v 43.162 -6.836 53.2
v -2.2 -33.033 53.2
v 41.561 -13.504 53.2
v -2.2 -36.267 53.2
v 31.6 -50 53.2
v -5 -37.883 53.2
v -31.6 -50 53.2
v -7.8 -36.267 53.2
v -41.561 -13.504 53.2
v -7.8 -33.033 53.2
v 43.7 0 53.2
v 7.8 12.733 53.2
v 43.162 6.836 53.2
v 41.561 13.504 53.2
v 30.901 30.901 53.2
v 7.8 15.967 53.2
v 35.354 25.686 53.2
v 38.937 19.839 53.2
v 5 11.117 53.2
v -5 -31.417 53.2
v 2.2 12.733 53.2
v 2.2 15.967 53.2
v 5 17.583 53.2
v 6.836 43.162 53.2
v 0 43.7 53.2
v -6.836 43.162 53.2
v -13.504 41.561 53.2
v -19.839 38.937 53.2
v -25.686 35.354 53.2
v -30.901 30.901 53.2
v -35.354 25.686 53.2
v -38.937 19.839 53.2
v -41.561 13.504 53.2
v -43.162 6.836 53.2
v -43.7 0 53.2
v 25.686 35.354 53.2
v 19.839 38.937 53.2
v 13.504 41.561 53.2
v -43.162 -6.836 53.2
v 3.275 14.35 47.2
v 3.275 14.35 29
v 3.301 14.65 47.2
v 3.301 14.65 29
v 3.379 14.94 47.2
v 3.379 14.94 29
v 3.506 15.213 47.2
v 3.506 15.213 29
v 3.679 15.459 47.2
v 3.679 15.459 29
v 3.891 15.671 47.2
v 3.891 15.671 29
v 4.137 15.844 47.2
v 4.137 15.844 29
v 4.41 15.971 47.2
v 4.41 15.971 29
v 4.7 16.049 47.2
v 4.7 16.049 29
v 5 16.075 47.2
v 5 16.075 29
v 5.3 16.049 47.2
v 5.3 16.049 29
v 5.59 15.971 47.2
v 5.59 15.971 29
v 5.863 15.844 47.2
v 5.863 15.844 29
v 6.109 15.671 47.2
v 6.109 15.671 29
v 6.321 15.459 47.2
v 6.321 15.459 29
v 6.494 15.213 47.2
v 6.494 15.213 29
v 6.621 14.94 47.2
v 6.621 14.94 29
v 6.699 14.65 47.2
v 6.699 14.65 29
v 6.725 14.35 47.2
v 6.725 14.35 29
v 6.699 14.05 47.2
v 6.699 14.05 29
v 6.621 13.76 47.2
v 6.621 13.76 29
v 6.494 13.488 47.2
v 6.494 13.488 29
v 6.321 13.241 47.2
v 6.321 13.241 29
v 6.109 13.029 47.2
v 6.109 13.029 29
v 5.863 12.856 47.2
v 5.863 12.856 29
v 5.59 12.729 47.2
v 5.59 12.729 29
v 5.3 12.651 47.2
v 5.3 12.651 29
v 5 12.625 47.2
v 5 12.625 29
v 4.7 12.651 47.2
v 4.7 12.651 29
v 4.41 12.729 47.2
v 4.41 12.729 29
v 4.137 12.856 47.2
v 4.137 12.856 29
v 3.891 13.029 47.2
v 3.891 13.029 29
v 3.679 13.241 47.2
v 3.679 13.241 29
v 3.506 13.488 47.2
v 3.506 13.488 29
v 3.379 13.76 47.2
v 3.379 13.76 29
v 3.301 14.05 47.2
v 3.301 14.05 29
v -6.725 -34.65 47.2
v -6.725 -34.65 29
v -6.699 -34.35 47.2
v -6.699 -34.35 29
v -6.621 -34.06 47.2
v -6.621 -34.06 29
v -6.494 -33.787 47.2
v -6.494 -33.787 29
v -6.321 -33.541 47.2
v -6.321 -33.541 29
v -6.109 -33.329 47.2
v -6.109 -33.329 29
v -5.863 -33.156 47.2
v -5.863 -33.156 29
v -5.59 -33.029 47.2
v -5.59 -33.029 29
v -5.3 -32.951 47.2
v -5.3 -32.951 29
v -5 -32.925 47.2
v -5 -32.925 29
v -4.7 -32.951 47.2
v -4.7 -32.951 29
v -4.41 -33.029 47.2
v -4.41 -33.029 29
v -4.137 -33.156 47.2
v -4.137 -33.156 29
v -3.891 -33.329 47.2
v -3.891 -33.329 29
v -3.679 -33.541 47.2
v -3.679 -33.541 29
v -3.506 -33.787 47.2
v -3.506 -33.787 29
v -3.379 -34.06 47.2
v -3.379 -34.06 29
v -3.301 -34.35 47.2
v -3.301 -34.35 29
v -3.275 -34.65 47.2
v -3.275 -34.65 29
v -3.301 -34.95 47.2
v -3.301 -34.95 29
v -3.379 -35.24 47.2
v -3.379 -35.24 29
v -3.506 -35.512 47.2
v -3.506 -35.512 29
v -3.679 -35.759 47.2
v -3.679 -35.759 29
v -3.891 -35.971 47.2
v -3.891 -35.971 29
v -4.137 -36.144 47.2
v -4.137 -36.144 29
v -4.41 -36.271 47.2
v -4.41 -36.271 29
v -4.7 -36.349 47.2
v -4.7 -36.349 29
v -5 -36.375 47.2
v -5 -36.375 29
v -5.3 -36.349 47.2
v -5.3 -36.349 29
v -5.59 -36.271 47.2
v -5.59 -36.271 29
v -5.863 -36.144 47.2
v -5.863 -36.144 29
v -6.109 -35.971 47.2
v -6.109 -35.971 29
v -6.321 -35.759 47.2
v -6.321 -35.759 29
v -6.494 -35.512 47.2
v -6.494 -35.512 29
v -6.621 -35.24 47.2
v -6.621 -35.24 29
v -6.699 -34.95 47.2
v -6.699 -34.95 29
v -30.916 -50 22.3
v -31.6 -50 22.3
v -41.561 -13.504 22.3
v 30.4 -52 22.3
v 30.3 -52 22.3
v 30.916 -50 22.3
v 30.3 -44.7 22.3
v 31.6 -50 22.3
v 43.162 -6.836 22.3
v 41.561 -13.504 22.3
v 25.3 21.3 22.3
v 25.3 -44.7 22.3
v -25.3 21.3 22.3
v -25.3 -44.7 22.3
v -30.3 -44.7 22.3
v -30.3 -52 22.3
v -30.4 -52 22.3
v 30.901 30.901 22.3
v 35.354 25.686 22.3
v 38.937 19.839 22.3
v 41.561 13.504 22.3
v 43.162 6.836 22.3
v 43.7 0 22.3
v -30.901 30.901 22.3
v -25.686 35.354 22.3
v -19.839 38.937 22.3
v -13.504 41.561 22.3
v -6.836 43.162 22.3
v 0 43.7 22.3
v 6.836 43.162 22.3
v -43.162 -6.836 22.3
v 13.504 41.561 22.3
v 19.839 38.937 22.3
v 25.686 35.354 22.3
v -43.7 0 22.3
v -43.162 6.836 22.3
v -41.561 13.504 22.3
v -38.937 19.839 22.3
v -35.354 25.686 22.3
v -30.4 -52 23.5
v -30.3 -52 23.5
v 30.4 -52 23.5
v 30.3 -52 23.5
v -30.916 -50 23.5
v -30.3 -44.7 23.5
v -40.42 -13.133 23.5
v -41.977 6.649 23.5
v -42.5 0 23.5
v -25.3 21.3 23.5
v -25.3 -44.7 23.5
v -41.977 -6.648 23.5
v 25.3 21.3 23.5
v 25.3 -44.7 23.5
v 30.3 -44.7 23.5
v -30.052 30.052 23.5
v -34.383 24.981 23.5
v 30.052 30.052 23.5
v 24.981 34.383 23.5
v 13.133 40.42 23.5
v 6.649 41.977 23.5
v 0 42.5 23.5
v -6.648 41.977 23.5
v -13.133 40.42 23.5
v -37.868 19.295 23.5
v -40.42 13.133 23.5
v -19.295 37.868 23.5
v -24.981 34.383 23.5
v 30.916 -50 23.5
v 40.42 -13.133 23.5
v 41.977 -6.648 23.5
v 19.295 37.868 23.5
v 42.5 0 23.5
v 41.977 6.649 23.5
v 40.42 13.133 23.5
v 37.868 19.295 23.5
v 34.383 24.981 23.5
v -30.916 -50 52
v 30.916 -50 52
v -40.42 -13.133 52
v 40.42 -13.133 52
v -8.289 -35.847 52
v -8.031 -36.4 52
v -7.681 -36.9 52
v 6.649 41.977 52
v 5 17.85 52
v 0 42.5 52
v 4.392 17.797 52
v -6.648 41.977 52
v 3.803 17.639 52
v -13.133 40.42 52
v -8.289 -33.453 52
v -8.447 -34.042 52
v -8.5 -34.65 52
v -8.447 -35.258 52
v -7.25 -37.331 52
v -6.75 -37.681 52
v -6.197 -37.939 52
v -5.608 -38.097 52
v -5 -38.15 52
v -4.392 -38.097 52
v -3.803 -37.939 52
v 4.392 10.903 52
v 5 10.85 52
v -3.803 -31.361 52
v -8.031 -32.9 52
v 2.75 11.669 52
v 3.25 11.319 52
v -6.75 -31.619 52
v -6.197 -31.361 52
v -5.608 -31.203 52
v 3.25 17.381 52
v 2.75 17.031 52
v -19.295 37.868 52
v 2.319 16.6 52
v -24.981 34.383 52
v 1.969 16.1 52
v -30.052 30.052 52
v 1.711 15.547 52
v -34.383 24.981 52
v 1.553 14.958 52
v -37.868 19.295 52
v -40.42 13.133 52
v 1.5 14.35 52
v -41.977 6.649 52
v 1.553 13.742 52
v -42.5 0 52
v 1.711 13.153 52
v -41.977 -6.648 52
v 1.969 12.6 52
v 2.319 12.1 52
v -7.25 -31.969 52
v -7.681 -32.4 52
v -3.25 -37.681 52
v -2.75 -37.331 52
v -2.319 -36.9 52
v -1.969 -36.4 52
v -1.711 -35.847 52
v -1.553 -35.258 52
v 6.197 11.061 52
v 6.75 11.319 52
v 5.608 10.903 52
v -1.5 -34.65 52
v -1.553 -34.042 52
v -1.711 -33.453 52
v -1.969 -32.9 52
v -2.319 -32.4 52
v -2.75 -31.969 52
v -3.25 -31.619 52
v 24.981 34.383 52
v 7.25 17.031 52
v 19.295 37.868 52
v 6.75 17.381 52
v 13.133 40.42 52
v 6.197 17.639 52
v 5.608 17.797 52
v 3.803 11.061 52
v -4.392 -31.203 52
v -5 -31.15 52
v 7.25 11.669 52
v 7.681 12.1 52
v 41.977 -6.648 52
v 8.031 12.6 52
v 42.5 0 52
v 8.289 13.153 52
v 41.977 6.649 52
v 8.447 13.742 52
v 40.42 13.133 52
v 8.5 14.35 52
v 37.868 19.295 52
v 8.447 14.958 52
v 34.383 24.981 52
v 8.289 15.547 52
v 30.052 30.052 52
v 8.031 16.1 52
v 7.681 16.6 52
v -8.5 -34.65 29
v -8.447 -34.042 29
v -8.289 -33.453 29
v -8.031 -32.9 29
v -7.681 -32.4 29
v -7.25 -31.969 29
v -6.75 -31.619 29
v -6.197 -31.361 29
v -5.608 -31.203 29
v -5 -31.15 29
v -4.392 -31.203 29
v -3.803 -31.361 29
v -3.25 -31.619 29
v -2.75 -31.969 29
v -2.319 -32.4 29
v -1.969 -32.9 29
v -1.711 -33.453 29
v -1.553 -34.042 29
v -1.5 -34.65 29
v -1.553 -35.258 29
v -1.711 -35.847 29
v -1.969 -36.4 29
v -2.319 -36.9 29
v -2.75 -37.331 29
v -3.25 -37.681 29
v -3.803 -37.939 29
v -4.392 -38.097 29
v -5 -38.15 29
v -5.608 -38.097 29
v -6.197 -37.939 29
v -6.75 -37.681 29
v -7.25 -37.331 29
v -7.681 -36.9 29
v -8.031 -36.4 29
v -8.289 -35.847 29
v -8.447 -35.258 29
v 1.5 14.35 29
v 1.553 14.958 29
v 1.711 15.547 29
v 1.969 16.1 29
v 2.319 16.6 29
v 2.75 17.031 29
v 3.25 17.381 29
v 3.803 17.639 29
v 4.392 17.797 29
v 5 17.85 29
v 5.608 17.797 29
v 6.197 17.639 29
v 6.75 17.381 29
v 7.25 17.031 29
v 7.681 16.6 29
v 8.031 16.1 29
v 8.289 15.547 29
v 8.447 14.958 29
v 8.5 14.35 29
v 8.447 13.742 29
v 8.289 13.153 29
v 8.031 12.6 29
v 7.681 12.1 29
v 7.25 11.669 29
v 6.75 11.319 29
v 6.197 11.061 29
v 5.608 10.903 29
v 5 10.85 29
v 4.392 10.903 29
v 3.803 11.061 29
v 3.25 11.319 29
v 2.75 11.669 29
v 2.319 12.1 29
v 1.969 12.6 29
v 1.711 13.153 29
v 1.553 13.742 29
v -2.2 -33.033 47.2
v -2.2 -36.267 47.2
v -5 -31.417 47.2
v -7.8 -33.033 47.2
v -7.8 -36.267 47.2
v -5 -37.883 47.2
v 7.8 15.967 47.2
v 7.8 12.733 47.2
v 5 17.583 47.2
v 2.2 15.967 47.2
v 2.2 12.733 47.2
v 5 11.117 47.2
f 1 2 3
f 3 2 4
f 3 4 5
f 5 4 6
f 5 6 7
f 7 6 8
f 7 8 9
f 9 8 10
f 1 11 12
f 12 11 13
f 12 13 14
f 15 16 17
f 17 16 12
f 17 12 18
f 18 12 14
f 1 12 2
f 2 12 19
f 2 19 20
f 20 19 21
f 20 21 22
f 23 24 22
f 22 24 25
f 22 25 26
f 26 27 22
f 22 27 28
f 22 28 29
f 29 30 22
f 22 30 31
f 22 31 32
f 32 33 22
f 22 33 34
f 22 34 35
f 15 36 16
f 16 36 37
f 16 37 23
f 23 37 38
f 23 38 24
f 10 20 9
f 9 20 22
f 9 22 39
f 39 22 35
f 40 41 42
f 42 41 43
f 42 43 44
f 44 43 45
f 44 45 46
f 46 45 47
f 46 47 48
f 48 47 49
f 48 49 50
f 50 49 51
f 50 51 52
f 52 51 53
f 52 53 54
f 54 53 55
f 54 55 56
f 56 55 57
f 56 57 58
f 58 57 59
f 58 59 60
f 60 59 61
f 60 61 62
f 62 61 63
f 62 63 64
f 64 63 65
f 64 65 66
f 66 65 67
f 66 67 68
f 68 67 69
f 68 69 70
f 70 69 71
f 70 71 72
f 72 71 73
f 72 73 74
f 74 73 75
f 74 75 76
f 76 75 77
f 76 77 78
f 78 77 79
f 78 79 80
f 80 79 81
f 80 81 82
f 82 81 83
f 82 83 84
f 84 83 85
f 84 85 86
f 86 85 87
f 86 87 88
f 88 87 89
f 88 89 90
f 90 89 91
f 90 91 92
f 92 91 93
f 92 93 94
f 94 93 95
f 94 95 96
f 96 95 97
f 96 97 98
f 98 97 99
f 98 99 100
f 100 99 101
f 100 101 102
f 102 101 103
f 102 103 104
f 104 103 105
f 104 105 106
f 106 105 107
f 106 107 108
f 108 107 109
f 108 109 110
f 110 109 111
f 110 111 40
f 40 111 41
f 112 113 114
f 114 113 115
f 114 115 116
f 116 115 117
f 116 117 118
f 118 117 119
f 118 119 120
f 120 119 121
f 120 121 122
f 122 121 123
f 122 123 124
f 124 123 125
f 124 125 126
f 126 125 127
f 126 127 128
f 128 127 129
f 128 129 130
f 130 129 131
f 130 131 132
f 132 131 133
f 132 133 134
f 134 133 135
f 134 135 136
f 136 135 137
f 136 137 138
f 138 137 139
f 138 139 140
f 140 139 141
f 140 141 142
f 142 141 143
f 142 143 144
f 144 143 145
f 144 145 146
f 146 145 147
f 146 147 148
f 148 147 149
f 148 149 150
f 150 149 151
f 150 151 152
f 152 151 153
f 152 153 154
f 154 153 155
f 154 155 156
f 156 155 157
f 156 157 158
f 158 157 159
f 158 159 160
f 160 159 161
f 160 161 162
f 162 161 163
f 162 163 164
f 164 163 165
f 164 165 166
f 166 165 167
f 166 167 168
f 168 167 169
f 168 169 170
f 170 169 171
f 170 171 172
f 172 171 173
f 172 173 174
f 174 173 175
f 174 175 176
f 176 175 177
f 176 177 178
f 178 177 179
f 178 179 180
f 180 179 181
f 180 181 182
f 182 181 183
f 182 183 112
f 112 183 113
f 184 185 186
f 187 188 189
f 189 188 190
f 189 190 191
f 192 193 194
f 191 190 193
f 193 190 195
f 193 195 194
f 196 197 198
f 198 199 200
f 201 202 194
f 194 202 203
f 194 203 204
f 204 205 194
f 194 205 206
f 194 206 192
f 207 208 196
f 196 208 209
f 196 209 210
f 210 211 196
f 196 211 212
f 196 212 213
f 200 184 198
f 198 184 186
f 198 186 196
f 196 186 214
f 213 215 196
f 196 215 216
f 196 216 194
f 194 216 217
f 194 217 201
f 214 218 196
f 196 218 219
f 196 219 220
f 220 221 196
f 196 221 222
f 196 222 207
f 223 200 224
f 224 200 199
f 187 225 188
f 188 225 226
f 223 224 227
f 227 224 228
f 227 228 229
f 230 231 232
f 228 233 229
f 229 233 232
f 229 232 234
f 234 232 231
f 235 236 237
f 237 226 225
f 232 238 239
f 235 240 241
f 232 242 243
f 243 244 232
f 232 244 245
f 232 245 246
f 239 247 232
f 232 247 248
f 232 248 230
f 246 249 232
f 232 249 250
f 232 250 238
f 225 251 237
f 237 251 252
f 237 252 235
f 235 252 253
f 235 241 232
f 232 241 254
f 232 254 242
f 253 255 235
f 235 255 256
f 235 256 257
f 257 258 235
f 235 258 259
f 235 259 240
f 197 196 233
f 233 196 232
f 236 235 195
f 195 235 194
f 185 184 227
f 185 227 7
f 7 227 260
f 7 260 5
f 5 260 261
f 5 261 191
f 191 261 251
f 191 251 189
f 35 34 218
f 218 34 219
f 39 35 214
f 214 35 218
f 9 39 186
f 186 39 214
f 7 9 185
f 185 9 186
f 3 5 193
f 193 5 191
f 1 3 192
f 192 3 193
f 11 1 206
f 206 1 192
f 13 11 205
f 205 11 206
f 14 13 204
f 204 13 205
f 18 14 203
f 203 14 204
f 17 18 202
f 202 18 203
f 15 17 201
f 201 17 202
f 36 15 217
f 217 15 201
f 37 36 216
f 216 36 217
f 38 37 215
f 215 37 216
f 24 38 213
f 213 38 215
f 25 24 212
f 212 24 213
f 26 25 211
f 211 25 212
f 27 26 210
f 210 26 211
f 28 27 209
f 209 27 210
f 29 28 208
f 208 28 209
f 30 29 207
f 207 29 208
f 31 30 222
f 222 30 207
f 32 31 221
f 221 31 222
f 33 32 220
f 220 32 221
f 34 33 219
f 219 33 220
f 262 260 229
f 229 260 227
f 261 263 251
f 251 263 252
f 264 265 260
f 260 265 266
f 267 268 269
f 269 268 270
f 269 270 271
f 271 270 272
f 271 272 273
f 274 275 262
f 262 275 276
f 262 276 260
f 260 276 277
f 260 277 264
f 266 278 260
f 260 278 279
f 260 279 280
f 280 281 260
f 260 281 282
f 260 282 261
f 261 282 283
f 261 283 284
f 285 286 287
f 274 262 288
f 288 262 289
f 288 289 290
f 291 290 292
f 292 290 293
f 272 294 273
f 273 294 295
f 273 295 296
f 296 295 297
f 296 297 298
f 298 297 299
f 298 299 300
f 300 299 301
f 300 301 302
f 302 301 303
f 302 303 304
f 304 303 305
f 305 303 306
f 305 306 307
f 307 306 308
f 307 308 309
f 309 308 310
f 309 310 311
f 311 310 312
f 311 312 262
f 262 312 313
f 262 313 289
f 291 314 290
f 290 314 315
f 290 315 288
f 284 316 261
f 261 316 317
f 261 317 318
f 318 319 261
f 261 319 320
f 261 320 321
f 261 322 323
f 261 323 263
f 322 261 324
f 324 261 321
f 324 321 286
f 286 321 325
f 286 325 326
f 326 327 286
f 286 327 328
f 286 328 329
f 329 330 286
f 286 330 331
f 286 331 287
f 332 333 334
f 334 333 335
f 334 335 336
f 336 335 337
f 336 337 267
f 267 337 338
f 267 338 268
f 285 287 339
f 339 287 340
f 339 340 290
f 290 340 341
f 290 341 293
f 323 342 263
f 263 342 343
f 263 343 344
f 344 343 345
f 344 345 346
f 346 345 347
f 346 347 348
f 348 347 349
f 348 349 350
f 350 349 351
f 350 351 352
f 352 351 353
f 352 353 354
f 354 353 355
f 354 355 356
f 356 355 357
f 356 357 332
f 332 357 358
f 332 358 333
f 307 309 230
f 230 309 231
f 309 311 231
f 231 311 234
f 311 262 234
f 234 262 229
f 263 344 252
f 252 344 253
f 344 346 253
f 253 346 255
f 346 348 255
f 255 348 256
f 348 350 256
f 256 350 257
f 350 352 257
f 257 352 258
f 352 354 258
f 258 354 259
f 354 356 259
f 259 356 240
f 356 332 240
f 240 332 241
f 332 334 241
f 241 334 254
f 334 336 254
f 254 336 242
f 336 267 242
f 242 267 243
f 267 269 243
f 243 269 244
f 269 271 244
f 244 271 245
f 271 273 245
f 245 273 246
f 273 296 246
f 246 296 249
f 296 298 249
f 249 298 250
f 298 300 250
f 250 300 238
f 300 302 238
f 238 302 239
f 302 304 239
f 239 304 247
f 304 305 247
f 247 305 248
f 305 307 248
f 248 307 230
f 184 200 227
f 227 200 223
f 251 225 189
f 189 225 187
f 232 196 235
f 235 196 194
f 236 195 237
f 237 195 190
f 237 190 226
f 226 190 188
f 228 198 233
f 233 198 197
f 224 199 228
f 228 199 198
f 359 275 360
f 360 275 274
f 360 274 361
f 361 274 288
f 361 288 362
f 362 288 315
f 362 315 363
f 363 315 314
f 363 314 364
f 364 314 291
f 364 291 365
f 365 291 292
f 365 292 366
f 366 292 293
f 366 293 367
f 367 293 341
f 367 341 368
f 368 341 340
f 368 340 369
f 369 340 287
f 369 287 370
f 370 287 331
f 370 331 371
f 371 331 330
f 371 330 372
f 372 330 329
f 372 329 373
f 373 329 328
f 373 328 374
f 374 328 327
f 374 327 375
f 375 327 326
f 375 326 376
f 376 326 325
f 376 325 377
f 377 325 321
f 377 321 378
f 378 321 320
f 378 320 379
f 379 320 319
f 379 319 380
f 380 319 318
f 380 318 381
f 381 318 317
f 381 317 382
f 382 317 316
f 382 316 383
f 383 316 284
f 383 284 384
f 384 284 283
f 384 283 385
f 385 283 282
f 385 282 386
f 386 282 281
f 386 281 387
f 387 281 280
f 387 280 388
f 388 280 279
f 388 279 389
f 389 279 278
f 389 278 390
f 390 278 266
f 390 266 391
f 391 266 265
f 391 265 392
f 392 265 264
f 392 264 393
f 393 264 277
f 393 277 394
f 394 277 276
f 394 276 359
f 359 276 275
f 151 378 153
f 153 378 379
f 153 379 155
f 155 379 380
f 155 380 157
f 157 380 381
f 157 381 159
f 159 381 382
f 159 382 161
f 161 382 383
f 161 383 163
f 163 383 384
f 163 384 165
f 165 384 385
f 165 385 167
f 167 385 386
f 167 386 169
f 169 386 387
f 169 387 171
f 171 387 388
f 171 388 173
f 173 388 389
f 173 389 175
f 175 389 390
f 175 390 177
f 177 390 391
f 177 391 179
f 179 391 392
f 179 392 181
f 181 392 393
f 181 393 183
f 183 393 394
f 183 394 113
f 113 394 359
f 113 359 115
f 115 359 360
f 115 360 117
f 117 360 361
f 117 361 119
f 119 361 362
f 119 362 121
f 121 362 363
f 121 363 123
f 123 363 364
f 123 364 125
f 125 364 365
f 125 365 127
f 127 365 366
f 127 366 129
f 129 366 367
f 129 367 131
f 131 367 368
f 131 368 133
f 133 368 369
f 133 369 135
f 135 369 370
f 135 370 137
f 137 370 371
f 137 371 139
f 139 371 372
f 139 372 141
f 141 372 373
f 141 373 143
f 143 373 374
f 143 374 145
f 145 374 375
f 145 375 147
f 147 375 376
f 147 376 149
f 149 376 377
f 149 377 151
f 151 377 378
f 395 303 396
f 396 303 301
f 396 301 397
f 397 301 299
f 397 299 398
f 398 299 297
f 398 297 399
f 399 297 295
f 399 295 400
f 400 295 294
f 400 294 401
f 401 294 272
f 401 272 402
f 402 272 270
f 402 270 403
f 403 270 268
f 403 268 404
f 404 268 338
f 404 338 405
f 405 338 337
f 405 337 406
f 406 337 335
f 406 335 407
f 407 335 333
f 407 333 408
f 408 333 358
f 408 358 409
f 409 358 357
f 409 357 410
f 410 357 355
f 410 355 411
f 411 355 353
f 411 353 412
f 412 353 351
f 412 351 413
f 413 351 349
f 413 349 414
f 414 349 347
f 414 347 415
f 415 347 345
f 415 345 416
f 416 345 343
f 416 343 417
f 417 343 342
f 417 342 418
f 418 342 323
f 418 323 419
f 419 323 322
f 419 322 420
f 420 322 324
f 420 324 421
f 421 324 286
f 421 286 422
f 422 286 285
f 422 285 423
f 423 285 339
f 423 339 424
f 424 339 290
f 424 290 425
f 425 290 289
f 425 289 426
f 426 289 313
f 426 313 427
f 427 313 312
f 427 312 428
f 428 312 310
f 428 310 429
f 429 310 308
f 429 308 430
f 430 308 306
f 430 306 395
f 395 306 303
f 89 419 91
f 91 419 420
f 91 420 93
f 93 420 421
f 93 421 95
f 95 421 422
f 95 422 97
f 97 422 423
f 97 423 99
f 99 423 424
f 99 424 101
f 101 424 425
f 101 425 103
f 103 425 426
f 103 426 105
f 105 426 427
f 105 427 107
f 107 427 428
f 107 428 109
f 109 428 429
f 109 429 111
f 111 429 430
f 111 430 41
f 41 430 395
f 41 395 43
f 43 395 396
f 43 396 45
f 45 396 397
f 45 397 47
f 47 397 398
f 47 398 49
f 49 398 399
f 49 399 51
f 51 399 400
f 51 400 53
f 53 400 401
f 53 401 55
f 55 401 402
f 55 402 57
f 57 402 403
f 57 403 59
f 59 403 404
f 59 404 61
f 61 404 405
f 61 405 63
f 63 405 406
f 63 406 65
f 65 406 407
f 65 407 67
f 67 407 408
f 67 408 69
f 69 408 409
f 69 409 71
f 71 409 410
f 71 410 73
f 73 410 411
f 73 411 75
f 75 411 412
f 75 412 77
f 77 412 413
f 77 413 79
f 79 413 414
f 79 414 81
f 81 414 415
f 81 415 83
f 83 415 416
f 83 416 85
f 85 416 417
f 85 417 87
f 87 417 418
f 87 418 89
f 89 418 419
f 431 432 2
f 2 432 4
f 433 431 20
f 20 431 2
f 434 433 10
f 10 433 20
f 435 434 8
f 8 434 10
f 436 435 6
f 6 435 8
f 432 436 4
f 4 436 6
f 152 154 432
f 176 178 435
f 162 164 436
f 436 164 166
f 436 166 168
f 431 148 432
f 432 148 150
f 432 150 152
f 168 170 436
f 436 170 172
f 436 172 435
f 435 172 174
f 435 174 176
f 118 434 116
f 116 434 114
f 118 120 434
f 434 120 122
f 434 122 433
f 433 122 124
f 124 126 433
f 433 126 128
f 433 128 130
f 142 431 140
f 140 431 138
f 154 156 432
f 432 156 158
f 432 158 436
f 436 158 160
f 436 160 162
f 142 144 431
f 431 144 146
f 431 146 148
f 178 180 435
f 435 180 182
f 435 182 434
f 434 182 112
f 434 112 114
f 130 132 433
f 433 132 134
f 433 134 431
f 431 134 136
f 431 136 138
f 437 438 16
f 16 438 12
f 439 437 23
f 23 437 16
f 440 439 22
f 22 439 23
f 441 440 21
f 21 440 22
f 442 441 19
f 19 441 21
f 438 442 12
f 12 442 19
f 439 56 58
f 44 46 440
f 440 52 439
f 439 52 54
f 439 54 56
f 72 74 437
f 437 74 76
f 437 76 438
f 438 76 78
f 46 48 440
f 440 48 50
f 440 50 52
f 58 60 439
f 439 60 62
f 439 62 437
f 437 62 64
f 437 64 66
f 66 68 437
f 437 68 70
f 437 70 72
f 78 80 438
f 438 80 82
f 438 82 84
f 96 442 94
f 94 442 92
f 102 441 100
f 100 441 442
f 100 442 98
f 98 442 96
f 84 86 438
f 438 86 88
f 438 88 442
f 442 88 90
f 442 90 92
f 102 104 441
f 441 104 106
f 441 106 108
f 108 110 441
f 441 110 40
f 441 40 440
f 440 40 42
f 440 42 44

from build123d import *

# Parameters (mm, degrees)
BOSS_EXTRUDE1_START     = 22.3
BOSS_EXTRUDE1_DEPTH     = 30.9
CUT_EXTRUDE1_START      = 22.3
CUT_EXTRUDE1_DEPTH      = 29.7
BOSS_EXTRUDE2_START     = 22.3
BOSS_EXTRUDE2_DEPTH     = 1.2
CUT_EXTRUDE2_START      = 22.2
SKETCH4_W               = 50.6
SKETCH4_H               = 74.3
CUT_EXTRUDE2_DEPTH      = 1.4
CUT_EXTRUDE3_START      = 22.2
SKETCH5_W               = 60.6
SKETCH5_H               = 8.3
CUT_EXTRUDE3_DEPTH      = 1.4
BOSS_EXTRUDE3_START     = 29
SKETCH6_R               = 3.5
BOSS_EXTRUDE3_DEPTH     = 23
CUT_EXTRUDE4_DEPTH      = 87.278212777
CUT_EXTRUDE4_DEPTH_BACK = 87.278212777
SKETCH7_R               = 1.725
CUT_EXTRUDE5_START      = 47.2
CUT_EXTRUDE5_DEPTH      = 6.1


with BuildPart() as part:
    # Sketch1 → Boss-Extrude1 (new body)
    with BuildSketch(Plane.XY.offset(BOSS_EXTRUDE1_START)):
        Polygon((-43.7, 0), (-43.162, -6.8362), (-41.5612, -13.504), (-31.6, -50), (31.6, -50), (41.5612, -13.504), (43.162, -6.8362), (43.7, 0), (43.162, 6.8362), (41.5612, 13.504), (38.937, 19.8394), (35.354, 25.6862), (30.9006, 30.9006), (25.6862, 35.354), (19.8394, 38.937), (13.504, 41.5612), (6.8362, 43.162), (0, 43.7), (-6.8362, 43.162), (-13.504, 41.5612), (-19.8394, 38.937), (-25.6862, 35.354), (-30.9006, 30.9006), (-35.354, 25.6862), (-38.937, 19.8394), (-41.5612, 13.504), (-43.162, 6.8362), align=None)
    extrude(amount=BOSS_EXTRUDE1_DEPTH)

    # Sketch2 → Cut-Extrude1 (cut)
    with BuildSketch(Plane.XY.offset(CUT_EXTRUDE1_START)):
        Polygon((-42.5, 0), (-41.9768, -6.6485), (-40.4199, -13.1332), (-30.4, -52), (30.4, -52), (40.4199, -13.1332), (41.9768, -6.6485), (42.5, 0), (41.9768, 6.6485), (40.4199, 13.1332), (37.8678, 19.2946), (34.3832, 24.9809), (30.052, 30.052), (24.9809, 34.3832), (19.2946, 37.8678), (13.1332, 40.4199), (6.6485, 41.9768), (0, 42.5), (-6.6485, 41.9768), (-13.1332, 40.4199), (-19.2946, 37.8678), (-24.9809, 34.3832), (-30.052, 30.052), (-34.3832, 24.9809), (-37.8678, 19.2946), (-40.4199, 13.1332), (-41.9768, 6.6485), align=None)
    extrude(amount=CUT_EXTRUDE1_DEPTH, mode=Mode.SUBTRACT)

    # Sketch3 → Boss-Extrude2 (add)
    with BuildSketch(Plane.XY.offset(BOSS_EXTRUDE2_START)):
        Polygon((-42.5, 0), (-41.9768, -6.6485), (-40.4199, -13.1332), (-30.4, -52), (30.4, -52), (40.4199, -13.1332), (41.9768, -6.6485), (42.5, 0), (41.9768, 6.6485), (40.4199, 13.1332), (37.8678, 19.2946), (34.3832, 24.9809), (30.052, 30.052), (24.9809, 34.3832), (19.2946, 37.8678), (13.1332, 40.4199), (6.6485, 41.9768), (0, 42.5), (-6.6485, 41.9768), (-13.1332, 40.4199), (-19.2946, 37.8678), (-24.9809, 34.3832), (-30.052, 30.052), (-34.3832, 24.9809), (-37.8678, 19.2946), (-40.4199, 13.1332), (-41.9768, 6.6485), align=None)
    extrude(amount=BOSS_EXTRUDE2_DEPTH)

    # Sketch4 → Cut-Extrude2 (cut)
    with BuildSketch(Plane.XY.offset(CUT_EXTRUDE2_START)):
        with Locations((0, -15.85)):
            Rectangle(SKETCH4_W, SKETCH4_H)
    extrude(amount=CUT_EXTRUDE2_DEPTH, mode=Mode.SUBTRACT)

    # Sketch5 → Cut-Extrude3 (cut)
    with BuildSketch(Plane.XY.offset(CUT_EXTRUDE3_START)):
        with Locations((0, -48.85)):
            Rectangle(SKETCH5_W, SKETCH5_H)
    extrude(amount=CUT_EXTRUDE3_DEPTH, mode=Mode.SUBTRACT)

    # Sketch6 → Boss-Extrude3 (add)
    with BuildSketch(Plane.XY.offset(BOSS_EXTRUDE3_START)):
        with Locations((5, 14.35)):
            Circle(SKETCH6_R)
        with Locations((-5, -34.65)):
            Circle(SKETCH6_R)
    extrude(amount=BOSS_EXTRUDE3_DEPTH)

    # Sketch7 → Cut-Extrude4 (cut, two sides: drawn at the far end of the back side and taken through both)
    with BuildSketch(Plane.XY.offset(-CUT_EXTRUDE4_DEPTH_BACK)):
        with Locations((5, 14.35)):
            Circle(SKETCH7_R)
        with Locations((-5, -34.65)):
            Circle(SKETCH7_R)
    extrude(amount=CUT_EXTRUDE4_DEPTH + CUT_EXTRUDE4_DEPTH_BACK, mode=Mode.SUBTRACT)

    # Sketch8 → Cut-Extrude5 (cut)
    with BuildSketch(Plane.XY.offset(CUT_EXTRUDE5_START)):
        Polygon((7.8, 15.966580754), (5, 17.583161507), (2.2, 15.966580754), (2.2, 12.733419246), (5, 11.116838493), (7.8, 12.733419246), align=None)
        Polygon((-2.2, -33.033419246), (-5, -31.416838493), (-7.8, -33.033419246), (-7.8, -36.266580754), (-5, -37.883161507), (-2.2, -36.266580754), align=None)
    extrude(amount=CUT_EXTRUDE5_DEPTH, mode=Mode.SUBTRACT)


solid = part.part
